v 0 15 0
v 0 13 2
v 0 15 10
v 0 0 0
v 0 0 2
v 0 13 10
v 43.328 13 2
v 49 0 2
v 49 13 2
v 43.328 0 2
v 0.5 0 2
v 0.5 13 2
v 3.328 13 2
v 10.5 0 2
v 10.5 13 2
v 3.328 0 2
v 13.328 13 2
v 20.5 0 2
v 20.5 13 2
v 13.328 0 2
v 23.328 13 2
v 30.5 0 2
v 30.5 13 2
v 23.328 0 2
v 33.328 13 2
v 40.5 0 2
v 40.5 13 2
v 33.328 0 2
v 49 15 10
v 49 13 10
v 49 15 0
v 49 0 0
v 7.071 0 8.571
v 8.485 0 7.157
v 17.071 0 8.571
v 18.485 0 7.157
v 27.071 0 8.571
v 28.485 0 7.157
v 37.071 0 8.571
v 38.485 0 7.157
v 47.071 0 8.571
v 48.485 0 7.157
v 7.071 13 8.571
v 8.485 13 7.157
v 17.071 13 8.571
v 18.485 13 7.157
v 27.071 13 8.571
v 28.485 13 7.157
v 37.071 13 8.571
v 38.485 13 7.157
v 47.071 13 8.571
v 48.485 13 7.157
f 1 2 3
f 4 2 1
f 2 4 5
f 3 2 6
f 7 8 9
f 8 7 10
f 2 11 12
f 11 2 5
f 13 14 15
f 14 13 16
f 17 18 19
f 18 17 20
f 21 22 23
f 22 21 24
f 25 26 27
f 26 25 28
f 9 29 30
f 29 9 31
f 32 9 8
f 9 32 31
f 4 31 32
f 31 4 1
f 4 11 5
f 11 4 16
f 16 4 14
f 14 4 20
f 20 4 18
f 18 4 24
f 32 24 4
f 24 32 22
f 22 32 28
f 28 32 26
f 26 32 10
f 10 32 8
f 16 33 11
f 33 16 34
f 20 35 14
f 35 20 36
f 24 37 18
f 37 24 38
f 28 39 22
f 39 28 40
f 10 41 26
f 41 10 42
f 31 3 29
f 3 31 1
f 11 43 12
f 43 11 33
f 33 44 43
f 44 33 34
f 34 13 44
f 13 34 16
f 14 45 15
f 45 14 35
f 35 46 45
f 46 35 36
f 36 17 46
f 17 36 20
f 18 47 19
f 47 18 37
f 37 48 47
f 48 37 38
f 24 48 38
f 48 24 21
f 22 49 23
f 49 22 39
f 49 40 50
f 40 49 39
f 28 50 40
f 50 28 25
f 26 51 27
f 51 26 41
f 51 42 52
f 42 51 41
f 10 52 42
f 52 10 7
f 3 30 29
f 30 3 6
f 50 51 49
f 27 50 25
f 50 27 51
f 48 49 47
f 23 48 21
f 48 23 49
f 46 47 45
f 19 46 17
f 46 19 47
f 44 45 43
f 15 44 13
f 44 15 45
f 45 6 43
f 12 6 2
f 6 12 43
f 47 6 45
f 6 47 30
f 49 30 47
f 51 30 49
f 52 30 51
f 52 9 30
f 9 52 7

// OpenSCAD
fileDescription = "Jack Mount (4)";
fileType = "JM-4";
fileVersion = "1C";

// Based on Audio Jack Breakout boards found on Amazon
// https://amzn.to/3oxYOGj


//The Belfry OpenSCAD Library
//https://github.com/revarbat/BOSL
include <BOSL/constants.scad>
use <BOSL/shapes.scad>
use <BOSL/transforms.scad>

slotDistanceX = 10;
switchCount = 4;

mountWidthX = (slotDistanceX*switchCount*1.10);
mountDepthY = 15;
mountHeightZ = 2; 


$fn=90; //circle smoothness

//main
difference() {
  base();
}

module base() {  
  color("steelblue") cube([mountWidthX+5, mountDepthY, mountHeightZ]);
  color("deepskyblue") up(1.5) right(slotDistanceX*0) rotate([0,45,0]) cube([2, mountDepthY, 10]);
  color("deepskyblue") up(1.5) right(slotDistanceX*1) rotate([0,45,0]) cube([2, mountDepthY, 10]);
  color("deepskyblue") up(1.5) right(slotDistanceX*2) rotate([0,45,0]) cube([2, mountDepthY, 10]);
  color("deepskyblue") up(1.5) right(slotDistanceX*3) rotate([0,45,0]) cube([2, mountDepthY, 10]);
  color("deepskyblue") up(1.5) right(slotDistanceX*4) rotate([0,45,0]) cube([2, mountDepthY, 10]);
  color("cornflowerblue") back(13) cube([mountWidthX+5, 2, 10]);
}

  
